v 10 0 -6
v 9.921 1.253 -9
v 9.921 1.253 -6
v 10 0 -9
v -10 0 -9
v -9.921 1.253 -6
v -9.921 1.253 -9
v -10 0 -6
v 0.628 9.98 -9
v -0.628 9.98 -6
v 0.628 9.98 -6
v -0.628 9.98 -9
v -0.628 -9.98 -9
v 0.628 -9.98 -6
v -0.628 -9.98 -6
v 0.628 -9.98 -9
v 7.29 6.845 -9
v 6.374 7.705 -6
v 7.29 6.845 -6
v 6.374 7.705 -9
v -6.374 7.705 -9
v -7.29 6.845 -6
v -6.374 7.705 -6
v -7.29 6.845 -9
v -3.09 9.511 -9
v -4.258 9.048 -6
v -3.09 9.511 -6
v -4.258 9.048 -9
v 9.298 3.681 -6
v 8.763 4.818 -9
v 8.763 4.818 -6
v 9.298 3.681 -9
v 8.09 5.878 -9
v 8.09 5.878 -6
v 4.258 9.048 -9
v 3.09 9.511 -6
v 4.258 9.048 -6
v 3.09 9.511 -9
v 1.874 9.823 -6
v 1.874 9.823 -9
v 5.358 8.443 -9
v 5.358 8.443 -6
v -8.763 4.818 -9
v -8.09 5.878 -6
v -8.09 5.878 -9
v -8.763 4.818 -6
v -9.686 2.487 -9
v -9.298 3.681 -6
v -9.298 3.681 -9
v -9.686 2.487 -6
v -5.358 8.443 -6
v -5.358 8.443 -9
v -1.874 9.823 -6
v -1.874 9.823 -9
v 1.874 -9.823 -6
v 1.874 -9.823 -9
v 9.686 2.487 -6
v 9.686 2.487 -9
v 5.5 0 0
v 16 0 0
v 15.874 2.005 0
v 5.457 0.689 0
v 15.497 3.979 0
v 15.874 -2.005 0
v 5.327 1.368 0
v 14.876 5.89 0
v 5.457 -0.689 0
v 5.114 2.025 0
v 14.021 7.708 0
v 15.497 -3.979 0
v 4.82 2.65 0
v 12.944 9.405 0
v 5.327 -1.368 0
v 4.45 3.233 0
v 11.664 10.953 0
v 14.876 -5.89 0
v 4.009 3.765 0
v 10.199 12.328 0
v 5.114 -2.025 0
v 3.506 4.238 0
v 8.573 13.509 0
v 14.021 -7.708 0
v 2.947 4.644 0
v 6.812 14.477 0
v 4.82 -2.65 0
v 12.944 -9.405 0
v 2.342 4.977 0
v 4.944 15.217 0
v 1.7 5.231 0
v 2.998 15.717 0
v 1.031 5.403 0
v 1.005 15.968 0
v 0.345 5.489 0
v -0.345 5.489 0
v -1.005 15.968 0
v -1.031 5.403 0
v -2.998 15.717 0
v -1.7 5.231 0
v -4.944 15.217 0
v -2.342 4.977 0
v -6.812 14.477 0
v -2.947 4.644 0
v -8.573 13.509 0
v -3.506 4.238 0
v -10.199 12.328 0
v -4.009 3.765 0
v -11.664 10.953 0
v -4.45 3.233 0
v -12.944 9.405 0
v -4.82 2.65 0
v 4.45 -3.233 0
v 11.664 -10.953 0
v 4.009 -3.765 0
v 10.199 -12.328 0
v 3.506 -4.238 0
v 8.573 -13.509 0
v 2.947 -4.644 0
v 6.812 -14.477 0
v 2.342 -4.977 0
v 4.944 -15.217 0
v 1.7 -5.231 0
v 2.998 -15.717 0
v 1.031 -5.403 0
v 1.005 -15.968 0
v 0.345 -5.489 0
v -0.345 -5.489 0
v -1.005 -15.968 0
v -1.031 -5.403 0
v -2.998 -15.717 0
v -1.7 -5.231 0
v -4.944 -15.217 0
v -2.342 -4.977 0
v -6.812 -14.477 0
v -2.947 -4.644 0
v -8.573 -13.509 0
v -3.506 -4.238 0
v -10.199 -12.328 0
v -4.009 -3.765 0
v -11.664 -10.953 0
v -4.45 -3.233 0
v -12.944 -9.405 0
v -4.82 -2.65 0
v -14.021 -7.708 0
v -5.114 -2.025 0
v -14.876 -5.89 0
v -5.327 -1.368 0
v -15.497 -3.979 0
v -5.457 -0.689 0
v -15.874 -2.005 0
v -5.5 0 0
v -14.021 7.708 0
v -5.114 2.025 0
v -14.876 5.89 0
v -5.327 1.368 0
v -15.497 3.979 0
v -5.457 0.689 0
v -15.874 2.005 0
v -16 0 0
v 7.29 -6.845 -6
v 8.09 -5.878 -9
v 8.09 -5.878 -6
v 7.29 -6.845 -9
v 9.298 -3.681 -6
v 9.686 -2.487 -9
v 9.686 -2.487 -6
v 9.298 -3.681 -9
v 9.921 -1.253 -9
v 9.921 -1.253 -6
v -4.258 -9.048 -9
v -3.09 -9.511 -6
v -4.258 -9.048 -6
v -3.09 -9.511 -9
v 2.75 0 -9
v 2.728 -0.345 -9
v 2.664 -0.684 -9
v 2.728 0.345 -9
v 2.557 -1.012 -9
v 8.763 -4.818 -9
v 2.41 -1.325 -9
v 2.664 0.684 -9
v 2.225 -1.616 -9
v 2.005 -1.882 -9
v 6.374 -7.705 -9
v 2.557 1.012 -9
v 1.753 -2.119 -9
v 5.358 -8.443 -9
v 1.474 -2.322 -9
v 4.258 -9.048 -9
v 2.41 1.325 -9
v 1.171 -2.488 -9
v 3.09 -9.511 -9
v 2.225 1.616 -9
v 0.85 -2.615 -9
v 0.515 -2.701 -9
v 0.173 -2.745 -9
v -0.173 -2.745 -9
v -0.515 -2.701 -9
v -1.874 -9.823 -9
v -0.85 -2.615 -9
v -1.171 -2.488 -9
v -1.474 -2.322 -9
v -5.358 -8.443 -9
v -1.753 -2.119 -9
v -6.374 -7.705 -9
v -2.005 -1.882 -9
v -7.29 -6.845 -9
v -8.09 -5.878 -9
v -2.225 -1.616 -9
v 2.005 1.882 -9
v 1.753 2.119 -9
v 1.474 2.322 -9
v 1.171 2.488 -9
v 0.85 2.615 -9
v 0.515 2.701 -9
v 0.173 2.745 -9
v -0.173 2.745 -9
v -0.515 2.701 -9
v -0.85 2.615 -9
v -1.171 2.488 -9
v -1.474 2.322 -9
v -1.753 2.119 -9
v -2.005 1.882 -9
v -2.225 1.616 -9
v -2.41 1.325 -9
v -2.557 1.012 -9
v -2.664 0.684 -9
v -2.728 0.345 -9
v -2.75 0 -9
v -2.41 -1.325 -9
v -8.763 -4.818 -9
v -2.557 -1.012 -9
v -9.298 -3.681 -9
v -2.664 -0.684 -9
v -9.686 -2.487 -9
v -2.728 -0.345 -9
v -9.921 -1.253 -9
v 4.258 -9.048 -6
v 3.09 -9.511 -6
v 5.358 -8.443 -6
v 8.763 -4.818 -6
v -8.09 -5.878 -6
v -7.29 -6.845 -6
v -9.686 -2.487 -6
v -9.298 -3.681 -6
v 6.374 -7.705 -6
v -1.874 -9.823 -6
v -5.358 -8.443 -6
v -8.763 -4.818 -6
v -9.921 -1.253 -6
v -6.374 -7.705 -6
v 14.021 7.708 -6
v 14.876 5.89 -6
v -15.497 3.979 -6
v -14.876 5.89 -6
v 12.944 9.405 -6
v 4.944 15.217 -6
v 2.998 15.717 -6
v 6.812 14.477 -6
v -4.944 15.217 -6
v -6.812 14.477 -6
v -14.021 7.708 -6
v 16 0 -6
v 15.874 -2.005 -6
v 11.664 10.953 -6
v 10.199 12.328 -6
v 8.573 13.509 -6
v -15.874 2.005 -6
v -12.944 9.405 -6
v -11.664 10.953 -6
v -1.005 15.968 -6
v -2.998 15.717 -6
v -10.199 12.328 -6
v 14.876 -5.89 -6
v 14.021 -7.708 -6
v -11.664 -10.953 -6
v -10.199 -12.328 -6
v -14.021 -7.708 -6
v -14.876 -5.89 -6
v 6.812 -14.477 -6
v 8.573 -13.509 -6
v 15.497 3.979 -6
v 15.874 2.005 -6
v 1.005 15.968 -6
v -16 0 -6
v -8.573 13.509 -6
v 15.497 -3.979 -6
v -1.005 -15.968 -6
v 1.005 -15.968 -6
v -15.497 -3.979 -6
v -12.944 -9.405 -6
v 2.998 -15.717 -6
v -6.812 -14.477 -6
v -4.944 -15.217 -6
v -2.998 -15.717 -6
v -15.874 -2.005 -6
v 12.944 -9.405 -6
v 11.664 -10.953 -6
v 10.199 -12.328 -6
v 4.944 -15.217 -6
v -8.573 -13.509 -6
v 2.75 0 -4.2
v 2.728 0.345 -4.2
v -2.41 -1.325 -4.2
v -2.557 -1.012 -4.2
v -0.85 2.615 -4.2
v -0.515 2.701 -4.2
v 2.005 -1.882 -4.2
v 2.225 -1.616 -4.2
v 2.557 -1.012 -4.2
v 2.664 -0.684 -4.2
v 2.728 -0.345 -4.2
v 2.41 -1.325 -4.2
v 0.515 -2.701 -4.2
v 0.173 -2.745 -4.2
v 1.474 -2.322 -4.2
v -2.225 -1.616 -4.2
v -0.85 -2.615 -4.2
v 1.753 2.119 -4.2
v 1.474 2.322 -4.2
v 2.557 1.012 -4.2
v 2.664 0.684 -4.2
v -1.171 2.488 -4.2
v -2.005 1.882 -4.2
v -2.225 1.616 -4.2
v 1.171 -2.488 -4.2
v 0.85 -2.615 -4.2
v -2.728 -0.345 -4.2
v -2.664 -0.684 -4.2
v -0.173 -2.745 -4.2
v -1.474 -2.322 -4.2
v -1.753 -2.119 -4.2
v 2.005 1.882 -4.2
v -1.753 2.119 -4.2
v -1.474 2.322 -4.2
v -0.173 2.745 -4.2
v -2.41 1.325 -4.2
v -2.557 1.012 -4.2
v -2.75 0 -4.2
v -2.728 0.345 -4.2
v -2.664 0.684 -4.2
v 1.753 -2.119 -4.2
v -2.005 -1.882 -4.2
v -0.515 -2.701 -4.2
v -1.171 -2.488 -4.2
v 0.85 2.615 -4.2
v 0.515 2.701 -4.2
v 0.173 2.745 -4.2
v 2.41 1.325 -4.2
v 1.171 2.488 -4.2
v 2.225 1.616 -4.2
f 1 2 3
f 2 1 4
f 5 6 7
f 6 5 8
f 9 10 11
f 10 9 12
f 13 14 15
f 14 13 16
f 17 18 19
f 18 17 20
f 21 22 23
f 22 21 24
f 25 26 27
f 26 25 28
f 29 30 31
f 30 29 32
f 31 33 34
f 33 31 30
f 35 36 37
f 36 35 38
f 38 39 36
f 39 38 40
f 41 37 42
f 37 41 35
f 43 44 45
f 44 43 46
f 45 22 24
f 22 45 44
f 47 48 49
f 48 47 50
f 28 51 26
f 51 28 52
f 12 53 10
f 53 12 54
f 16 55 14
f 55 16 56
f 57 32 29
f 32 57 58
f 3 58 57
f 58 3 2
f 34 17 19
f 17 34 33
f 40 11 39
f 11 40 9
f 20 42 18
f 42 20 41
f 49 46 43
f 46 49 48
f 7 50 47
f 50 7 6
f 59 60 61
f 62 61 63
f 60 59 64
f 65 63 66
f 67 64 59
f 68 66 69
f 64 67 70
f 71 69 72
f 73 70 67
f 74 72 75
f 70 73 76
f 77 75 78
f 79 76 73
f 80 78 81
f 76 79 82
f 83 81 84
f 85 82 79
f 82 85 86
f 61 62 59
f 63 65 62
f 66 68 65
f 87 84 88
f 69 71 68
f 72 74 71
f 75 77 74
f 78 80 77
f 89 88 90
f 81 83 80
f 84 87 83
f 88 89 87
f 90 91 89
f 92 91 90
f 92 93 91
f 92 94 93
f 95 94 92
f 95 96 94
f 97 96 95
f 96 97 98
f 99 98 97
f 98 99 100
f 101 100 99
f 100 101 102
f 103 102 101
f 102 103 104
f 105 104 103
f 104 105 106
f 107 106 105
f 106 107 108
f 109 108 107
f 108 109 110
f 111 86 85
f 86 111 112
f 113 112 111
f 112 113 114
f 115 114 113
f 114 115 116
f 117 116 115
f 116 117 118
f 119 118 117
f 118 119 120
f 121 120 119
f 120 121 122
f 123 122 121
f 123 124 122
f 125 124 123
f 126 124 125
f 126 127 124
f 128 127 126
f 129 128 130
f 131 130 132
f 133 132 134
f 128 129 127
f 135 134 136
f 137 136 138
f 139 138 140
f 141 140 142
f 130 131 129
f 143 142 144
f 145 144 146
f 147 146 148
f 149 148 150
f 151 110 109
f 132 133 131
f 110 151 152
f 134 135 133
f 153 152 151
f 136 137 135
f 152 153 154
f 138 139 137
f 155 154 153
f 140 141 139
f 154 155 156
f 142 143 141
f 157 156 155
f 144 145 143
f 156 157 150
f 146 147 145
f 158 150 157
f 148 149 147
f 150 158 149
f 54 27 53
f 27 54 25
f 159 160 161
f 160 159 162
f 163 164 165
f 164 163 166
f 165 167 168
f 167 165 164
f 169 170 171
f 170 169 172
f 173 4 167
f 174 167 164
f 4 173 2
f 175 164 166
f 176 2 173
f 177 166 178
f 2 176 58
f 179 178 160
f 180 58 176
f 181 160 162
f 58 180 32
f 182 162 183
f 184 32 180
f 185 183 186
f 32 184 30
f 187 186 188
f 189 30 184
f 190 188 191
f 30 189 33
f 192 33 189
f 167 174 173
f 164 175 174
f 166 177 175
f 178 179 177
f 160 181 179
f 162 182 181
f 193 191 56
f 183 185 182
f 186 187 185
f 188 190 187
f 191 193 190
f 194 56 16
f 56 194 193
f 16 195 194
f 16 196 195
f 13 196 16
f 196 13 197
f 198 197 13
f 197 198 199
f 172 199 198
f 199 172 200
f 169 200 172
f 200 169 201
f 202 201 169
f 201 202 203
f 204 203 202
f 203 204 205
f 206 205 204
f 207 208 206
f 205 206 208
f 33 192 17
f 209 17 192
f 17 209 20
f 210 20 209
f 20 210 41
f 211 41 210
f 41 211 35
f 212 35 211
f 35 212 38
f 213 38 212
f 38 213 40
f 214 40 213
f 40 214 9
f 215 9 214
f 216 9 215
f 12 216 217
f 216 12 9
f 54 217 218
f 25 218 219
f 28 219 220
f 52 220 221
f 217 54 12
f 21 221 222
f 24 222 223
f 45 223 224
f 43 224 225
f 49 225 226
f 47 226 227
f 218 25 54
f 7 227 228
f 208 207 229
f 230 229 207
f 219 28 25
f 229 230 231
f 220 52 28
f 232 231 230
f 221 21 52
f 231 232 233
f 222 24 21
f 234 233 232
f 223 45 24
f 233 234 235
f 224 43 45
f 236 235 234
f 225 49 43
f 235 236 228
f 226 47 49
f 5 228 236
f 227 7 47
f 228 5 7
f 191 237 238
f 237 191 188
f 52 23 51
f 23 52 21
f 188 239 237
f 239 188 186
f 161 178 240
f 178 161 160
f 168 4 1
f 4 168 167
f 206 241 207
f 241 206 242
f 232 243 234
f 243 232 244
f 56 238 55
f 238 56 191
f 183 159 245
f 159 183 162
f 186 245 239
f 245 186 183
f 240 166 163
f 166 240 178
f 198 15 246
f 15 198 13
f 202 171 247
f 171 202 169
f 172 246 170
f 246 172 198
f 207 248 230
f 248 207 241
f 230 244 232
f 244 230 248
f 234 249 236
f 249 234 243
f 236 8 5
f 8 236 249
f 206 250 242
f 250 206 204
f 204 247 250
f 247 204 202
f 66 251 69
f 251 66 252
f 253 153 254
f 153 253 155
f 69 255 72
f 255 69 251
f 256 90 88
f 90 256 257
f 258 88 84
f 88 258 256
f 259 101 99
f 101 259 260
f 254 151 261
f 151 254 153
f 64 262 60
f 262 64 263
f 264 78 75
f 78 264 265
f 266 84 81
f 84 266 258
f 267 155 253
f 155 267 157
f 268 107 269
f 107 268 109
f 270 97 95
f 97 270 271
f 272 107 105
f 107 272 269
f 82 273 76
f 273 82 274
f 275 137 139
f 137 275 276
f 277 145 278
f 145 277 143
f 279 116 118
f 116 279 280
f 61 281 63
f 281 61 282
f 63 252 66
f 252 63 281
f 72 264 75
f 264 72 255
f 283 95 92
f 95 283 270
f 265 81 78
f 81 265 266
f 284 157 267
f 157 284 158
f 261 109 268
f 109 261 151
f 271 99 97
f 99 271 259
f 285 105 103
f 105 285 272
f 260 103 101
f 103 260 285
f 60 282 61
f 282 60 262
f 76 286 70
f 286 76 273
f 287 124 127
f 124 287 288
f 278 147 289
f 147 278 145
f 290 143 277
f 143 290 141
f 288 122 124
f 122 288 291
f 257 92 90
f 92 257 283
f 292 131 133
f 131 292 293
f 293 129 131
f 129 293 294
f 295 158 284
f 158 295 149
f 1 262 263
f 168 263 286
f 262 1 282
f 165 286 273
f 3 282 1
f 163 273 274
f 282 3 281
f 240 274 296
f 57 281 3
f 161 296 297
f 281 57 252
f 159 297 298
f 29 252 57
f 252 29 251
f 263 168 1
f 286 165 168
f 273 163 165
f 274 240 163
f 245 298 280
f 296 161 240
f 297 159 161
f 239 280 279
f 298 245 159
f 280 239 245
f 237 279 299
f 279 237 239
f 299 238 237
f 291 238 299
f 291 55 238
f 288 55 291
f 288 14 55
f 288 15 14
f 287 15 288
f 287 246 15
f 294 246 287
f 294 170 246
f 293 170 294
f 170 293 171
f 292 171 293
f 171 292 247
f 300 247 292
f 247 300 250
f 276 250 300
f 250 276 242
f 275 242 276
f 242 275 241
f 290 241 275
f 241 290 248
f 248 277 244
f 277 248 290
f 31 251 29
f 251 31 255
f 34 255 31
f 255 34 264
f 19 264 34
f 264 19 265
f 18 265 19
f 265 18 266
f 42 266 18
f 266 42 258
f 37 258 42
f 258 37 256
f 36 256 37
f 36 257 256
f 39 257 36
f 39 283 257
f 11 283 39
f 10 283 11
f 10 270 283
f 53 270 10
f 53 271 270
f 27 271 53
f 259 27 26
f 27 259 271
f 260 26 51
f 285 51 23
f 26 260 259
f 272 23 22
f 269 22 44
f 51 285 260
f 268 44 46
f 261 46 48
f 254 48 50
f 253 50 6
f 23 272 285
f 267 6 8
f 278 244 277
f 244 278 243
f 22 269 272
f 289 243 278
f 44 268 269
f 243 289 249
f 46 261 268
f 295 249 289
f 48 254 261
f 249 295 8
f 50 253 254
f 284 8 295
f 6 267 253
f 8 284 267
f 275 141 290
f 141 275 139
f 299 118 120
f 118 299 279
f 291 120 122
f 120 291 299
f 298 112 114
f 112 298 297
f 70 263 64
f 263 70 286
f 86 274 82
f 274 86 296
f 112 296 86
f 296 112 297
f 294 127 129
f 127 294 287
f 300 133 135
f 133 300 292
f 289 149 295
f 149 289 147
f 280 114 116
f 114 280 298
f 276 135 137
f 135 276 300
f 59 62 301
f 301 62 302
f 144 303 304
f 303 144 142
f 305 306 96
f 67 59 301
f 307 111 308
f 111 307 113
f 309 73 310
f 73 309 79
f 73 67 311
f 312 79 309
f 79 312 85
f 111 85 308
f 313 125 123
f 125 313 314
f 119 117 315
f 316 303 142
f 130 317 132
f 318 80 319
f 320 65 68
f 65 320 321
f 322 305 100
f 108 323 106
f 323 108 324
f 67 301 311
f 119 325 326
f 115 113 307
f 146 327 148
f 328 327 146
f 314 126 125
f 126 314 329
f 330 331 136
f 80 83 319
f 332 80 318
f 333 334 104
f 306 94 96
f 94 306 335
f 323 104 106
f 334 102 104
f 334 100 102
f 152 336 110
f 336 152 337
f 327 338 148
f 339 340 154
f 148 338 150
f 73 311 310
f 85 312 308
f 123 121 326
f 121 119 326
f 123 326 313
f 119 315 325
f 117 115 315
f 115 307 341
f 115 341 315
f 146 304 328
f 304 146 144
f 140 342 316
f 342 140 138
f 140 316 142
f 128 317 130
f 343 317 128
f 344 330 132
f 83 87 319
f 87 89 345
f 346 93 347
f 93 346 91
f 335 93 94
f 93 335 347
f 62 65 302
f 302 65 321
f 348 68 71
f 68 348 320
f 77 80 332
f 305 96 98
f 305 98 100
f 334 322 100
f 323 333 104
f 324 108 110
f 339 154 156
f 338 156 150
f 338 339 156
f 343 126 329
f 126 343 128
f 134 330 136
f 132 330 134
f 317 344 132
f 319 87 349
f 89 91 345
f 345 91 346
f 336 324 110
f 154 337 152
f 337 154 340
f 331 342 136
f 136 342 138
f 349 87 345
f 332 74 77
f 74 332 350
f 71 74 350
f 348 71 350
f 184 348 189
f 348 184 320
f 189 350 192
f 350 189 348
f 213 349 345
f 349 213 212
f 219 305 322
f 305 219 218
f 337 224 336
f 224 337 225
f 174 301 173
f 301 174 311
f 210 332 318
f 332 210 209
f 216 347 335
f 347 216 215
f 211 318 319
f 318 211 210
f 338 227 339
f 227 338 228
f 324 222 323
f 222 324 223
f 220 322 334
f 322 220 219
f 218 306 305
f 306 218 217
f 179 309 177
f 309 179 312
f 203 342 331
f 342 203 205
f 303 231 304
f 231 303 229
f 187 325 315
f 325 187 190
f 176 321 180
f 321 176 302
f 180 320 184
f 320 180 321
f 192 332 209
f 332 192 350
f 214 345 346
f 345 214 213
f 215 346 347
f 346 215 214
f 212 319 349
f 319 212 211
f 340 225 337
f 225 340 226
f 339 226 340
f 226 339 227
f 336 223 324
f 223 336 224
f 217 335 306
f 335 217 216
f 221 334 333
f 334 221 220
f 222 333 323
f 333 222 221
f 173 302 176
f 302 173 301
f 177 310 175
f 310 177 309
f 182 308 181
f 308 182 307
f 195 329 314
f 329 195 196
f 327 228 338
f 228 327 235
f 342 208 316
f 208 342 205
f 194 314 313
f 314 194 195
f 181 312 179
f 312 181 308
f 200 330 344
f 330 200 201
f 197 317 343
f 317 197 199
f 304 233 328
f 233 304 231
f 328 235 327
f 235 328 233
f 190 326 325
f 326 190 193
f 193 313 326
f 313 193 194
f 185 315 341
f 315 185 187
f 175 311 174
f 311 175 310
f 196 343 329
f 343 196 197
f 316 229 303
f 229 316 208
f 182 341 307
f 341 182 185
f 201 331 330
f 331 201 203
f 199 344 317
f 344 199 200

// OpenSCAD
$fn = 50;


difference() {
	union() {
		translate(v = [0, 0, -9.0000000000]) {
			cylinder(h = 9, r = 10.0000000000);
		}
		translate(v = [0, 0, -6.0000000000]) {
			cylinder(h = 6, r = 16.0000000000);
		}
	}
	union() {
		translate(v = [0, 0, 0]) {
			rotate(a = [0, 0, 0]) {
				difference() {
					union() {
						#translate(v = [0, 0, -9.0000000000]) {
							cylinder(h = 9, r = 2.2500000000);
						}
						#translate(v = [0, 0, -4.2000000000]) {
							cylinder(h = 4.2000000000, r = 10.0000000000, r1 = 2.7500000000, r2 = 5.5000000000);
						}
						#translate(v = [0, 0, -9.0000000000]) {
							cylinder(h = 9, r = 2.7500000000);
						}
						#translate(v = [0, 0, -9.0000000000]) {
							cylinder(h = 9, r = 2.2500000000);
						}
					}
					union();
				}
			}
		}
	}
}
